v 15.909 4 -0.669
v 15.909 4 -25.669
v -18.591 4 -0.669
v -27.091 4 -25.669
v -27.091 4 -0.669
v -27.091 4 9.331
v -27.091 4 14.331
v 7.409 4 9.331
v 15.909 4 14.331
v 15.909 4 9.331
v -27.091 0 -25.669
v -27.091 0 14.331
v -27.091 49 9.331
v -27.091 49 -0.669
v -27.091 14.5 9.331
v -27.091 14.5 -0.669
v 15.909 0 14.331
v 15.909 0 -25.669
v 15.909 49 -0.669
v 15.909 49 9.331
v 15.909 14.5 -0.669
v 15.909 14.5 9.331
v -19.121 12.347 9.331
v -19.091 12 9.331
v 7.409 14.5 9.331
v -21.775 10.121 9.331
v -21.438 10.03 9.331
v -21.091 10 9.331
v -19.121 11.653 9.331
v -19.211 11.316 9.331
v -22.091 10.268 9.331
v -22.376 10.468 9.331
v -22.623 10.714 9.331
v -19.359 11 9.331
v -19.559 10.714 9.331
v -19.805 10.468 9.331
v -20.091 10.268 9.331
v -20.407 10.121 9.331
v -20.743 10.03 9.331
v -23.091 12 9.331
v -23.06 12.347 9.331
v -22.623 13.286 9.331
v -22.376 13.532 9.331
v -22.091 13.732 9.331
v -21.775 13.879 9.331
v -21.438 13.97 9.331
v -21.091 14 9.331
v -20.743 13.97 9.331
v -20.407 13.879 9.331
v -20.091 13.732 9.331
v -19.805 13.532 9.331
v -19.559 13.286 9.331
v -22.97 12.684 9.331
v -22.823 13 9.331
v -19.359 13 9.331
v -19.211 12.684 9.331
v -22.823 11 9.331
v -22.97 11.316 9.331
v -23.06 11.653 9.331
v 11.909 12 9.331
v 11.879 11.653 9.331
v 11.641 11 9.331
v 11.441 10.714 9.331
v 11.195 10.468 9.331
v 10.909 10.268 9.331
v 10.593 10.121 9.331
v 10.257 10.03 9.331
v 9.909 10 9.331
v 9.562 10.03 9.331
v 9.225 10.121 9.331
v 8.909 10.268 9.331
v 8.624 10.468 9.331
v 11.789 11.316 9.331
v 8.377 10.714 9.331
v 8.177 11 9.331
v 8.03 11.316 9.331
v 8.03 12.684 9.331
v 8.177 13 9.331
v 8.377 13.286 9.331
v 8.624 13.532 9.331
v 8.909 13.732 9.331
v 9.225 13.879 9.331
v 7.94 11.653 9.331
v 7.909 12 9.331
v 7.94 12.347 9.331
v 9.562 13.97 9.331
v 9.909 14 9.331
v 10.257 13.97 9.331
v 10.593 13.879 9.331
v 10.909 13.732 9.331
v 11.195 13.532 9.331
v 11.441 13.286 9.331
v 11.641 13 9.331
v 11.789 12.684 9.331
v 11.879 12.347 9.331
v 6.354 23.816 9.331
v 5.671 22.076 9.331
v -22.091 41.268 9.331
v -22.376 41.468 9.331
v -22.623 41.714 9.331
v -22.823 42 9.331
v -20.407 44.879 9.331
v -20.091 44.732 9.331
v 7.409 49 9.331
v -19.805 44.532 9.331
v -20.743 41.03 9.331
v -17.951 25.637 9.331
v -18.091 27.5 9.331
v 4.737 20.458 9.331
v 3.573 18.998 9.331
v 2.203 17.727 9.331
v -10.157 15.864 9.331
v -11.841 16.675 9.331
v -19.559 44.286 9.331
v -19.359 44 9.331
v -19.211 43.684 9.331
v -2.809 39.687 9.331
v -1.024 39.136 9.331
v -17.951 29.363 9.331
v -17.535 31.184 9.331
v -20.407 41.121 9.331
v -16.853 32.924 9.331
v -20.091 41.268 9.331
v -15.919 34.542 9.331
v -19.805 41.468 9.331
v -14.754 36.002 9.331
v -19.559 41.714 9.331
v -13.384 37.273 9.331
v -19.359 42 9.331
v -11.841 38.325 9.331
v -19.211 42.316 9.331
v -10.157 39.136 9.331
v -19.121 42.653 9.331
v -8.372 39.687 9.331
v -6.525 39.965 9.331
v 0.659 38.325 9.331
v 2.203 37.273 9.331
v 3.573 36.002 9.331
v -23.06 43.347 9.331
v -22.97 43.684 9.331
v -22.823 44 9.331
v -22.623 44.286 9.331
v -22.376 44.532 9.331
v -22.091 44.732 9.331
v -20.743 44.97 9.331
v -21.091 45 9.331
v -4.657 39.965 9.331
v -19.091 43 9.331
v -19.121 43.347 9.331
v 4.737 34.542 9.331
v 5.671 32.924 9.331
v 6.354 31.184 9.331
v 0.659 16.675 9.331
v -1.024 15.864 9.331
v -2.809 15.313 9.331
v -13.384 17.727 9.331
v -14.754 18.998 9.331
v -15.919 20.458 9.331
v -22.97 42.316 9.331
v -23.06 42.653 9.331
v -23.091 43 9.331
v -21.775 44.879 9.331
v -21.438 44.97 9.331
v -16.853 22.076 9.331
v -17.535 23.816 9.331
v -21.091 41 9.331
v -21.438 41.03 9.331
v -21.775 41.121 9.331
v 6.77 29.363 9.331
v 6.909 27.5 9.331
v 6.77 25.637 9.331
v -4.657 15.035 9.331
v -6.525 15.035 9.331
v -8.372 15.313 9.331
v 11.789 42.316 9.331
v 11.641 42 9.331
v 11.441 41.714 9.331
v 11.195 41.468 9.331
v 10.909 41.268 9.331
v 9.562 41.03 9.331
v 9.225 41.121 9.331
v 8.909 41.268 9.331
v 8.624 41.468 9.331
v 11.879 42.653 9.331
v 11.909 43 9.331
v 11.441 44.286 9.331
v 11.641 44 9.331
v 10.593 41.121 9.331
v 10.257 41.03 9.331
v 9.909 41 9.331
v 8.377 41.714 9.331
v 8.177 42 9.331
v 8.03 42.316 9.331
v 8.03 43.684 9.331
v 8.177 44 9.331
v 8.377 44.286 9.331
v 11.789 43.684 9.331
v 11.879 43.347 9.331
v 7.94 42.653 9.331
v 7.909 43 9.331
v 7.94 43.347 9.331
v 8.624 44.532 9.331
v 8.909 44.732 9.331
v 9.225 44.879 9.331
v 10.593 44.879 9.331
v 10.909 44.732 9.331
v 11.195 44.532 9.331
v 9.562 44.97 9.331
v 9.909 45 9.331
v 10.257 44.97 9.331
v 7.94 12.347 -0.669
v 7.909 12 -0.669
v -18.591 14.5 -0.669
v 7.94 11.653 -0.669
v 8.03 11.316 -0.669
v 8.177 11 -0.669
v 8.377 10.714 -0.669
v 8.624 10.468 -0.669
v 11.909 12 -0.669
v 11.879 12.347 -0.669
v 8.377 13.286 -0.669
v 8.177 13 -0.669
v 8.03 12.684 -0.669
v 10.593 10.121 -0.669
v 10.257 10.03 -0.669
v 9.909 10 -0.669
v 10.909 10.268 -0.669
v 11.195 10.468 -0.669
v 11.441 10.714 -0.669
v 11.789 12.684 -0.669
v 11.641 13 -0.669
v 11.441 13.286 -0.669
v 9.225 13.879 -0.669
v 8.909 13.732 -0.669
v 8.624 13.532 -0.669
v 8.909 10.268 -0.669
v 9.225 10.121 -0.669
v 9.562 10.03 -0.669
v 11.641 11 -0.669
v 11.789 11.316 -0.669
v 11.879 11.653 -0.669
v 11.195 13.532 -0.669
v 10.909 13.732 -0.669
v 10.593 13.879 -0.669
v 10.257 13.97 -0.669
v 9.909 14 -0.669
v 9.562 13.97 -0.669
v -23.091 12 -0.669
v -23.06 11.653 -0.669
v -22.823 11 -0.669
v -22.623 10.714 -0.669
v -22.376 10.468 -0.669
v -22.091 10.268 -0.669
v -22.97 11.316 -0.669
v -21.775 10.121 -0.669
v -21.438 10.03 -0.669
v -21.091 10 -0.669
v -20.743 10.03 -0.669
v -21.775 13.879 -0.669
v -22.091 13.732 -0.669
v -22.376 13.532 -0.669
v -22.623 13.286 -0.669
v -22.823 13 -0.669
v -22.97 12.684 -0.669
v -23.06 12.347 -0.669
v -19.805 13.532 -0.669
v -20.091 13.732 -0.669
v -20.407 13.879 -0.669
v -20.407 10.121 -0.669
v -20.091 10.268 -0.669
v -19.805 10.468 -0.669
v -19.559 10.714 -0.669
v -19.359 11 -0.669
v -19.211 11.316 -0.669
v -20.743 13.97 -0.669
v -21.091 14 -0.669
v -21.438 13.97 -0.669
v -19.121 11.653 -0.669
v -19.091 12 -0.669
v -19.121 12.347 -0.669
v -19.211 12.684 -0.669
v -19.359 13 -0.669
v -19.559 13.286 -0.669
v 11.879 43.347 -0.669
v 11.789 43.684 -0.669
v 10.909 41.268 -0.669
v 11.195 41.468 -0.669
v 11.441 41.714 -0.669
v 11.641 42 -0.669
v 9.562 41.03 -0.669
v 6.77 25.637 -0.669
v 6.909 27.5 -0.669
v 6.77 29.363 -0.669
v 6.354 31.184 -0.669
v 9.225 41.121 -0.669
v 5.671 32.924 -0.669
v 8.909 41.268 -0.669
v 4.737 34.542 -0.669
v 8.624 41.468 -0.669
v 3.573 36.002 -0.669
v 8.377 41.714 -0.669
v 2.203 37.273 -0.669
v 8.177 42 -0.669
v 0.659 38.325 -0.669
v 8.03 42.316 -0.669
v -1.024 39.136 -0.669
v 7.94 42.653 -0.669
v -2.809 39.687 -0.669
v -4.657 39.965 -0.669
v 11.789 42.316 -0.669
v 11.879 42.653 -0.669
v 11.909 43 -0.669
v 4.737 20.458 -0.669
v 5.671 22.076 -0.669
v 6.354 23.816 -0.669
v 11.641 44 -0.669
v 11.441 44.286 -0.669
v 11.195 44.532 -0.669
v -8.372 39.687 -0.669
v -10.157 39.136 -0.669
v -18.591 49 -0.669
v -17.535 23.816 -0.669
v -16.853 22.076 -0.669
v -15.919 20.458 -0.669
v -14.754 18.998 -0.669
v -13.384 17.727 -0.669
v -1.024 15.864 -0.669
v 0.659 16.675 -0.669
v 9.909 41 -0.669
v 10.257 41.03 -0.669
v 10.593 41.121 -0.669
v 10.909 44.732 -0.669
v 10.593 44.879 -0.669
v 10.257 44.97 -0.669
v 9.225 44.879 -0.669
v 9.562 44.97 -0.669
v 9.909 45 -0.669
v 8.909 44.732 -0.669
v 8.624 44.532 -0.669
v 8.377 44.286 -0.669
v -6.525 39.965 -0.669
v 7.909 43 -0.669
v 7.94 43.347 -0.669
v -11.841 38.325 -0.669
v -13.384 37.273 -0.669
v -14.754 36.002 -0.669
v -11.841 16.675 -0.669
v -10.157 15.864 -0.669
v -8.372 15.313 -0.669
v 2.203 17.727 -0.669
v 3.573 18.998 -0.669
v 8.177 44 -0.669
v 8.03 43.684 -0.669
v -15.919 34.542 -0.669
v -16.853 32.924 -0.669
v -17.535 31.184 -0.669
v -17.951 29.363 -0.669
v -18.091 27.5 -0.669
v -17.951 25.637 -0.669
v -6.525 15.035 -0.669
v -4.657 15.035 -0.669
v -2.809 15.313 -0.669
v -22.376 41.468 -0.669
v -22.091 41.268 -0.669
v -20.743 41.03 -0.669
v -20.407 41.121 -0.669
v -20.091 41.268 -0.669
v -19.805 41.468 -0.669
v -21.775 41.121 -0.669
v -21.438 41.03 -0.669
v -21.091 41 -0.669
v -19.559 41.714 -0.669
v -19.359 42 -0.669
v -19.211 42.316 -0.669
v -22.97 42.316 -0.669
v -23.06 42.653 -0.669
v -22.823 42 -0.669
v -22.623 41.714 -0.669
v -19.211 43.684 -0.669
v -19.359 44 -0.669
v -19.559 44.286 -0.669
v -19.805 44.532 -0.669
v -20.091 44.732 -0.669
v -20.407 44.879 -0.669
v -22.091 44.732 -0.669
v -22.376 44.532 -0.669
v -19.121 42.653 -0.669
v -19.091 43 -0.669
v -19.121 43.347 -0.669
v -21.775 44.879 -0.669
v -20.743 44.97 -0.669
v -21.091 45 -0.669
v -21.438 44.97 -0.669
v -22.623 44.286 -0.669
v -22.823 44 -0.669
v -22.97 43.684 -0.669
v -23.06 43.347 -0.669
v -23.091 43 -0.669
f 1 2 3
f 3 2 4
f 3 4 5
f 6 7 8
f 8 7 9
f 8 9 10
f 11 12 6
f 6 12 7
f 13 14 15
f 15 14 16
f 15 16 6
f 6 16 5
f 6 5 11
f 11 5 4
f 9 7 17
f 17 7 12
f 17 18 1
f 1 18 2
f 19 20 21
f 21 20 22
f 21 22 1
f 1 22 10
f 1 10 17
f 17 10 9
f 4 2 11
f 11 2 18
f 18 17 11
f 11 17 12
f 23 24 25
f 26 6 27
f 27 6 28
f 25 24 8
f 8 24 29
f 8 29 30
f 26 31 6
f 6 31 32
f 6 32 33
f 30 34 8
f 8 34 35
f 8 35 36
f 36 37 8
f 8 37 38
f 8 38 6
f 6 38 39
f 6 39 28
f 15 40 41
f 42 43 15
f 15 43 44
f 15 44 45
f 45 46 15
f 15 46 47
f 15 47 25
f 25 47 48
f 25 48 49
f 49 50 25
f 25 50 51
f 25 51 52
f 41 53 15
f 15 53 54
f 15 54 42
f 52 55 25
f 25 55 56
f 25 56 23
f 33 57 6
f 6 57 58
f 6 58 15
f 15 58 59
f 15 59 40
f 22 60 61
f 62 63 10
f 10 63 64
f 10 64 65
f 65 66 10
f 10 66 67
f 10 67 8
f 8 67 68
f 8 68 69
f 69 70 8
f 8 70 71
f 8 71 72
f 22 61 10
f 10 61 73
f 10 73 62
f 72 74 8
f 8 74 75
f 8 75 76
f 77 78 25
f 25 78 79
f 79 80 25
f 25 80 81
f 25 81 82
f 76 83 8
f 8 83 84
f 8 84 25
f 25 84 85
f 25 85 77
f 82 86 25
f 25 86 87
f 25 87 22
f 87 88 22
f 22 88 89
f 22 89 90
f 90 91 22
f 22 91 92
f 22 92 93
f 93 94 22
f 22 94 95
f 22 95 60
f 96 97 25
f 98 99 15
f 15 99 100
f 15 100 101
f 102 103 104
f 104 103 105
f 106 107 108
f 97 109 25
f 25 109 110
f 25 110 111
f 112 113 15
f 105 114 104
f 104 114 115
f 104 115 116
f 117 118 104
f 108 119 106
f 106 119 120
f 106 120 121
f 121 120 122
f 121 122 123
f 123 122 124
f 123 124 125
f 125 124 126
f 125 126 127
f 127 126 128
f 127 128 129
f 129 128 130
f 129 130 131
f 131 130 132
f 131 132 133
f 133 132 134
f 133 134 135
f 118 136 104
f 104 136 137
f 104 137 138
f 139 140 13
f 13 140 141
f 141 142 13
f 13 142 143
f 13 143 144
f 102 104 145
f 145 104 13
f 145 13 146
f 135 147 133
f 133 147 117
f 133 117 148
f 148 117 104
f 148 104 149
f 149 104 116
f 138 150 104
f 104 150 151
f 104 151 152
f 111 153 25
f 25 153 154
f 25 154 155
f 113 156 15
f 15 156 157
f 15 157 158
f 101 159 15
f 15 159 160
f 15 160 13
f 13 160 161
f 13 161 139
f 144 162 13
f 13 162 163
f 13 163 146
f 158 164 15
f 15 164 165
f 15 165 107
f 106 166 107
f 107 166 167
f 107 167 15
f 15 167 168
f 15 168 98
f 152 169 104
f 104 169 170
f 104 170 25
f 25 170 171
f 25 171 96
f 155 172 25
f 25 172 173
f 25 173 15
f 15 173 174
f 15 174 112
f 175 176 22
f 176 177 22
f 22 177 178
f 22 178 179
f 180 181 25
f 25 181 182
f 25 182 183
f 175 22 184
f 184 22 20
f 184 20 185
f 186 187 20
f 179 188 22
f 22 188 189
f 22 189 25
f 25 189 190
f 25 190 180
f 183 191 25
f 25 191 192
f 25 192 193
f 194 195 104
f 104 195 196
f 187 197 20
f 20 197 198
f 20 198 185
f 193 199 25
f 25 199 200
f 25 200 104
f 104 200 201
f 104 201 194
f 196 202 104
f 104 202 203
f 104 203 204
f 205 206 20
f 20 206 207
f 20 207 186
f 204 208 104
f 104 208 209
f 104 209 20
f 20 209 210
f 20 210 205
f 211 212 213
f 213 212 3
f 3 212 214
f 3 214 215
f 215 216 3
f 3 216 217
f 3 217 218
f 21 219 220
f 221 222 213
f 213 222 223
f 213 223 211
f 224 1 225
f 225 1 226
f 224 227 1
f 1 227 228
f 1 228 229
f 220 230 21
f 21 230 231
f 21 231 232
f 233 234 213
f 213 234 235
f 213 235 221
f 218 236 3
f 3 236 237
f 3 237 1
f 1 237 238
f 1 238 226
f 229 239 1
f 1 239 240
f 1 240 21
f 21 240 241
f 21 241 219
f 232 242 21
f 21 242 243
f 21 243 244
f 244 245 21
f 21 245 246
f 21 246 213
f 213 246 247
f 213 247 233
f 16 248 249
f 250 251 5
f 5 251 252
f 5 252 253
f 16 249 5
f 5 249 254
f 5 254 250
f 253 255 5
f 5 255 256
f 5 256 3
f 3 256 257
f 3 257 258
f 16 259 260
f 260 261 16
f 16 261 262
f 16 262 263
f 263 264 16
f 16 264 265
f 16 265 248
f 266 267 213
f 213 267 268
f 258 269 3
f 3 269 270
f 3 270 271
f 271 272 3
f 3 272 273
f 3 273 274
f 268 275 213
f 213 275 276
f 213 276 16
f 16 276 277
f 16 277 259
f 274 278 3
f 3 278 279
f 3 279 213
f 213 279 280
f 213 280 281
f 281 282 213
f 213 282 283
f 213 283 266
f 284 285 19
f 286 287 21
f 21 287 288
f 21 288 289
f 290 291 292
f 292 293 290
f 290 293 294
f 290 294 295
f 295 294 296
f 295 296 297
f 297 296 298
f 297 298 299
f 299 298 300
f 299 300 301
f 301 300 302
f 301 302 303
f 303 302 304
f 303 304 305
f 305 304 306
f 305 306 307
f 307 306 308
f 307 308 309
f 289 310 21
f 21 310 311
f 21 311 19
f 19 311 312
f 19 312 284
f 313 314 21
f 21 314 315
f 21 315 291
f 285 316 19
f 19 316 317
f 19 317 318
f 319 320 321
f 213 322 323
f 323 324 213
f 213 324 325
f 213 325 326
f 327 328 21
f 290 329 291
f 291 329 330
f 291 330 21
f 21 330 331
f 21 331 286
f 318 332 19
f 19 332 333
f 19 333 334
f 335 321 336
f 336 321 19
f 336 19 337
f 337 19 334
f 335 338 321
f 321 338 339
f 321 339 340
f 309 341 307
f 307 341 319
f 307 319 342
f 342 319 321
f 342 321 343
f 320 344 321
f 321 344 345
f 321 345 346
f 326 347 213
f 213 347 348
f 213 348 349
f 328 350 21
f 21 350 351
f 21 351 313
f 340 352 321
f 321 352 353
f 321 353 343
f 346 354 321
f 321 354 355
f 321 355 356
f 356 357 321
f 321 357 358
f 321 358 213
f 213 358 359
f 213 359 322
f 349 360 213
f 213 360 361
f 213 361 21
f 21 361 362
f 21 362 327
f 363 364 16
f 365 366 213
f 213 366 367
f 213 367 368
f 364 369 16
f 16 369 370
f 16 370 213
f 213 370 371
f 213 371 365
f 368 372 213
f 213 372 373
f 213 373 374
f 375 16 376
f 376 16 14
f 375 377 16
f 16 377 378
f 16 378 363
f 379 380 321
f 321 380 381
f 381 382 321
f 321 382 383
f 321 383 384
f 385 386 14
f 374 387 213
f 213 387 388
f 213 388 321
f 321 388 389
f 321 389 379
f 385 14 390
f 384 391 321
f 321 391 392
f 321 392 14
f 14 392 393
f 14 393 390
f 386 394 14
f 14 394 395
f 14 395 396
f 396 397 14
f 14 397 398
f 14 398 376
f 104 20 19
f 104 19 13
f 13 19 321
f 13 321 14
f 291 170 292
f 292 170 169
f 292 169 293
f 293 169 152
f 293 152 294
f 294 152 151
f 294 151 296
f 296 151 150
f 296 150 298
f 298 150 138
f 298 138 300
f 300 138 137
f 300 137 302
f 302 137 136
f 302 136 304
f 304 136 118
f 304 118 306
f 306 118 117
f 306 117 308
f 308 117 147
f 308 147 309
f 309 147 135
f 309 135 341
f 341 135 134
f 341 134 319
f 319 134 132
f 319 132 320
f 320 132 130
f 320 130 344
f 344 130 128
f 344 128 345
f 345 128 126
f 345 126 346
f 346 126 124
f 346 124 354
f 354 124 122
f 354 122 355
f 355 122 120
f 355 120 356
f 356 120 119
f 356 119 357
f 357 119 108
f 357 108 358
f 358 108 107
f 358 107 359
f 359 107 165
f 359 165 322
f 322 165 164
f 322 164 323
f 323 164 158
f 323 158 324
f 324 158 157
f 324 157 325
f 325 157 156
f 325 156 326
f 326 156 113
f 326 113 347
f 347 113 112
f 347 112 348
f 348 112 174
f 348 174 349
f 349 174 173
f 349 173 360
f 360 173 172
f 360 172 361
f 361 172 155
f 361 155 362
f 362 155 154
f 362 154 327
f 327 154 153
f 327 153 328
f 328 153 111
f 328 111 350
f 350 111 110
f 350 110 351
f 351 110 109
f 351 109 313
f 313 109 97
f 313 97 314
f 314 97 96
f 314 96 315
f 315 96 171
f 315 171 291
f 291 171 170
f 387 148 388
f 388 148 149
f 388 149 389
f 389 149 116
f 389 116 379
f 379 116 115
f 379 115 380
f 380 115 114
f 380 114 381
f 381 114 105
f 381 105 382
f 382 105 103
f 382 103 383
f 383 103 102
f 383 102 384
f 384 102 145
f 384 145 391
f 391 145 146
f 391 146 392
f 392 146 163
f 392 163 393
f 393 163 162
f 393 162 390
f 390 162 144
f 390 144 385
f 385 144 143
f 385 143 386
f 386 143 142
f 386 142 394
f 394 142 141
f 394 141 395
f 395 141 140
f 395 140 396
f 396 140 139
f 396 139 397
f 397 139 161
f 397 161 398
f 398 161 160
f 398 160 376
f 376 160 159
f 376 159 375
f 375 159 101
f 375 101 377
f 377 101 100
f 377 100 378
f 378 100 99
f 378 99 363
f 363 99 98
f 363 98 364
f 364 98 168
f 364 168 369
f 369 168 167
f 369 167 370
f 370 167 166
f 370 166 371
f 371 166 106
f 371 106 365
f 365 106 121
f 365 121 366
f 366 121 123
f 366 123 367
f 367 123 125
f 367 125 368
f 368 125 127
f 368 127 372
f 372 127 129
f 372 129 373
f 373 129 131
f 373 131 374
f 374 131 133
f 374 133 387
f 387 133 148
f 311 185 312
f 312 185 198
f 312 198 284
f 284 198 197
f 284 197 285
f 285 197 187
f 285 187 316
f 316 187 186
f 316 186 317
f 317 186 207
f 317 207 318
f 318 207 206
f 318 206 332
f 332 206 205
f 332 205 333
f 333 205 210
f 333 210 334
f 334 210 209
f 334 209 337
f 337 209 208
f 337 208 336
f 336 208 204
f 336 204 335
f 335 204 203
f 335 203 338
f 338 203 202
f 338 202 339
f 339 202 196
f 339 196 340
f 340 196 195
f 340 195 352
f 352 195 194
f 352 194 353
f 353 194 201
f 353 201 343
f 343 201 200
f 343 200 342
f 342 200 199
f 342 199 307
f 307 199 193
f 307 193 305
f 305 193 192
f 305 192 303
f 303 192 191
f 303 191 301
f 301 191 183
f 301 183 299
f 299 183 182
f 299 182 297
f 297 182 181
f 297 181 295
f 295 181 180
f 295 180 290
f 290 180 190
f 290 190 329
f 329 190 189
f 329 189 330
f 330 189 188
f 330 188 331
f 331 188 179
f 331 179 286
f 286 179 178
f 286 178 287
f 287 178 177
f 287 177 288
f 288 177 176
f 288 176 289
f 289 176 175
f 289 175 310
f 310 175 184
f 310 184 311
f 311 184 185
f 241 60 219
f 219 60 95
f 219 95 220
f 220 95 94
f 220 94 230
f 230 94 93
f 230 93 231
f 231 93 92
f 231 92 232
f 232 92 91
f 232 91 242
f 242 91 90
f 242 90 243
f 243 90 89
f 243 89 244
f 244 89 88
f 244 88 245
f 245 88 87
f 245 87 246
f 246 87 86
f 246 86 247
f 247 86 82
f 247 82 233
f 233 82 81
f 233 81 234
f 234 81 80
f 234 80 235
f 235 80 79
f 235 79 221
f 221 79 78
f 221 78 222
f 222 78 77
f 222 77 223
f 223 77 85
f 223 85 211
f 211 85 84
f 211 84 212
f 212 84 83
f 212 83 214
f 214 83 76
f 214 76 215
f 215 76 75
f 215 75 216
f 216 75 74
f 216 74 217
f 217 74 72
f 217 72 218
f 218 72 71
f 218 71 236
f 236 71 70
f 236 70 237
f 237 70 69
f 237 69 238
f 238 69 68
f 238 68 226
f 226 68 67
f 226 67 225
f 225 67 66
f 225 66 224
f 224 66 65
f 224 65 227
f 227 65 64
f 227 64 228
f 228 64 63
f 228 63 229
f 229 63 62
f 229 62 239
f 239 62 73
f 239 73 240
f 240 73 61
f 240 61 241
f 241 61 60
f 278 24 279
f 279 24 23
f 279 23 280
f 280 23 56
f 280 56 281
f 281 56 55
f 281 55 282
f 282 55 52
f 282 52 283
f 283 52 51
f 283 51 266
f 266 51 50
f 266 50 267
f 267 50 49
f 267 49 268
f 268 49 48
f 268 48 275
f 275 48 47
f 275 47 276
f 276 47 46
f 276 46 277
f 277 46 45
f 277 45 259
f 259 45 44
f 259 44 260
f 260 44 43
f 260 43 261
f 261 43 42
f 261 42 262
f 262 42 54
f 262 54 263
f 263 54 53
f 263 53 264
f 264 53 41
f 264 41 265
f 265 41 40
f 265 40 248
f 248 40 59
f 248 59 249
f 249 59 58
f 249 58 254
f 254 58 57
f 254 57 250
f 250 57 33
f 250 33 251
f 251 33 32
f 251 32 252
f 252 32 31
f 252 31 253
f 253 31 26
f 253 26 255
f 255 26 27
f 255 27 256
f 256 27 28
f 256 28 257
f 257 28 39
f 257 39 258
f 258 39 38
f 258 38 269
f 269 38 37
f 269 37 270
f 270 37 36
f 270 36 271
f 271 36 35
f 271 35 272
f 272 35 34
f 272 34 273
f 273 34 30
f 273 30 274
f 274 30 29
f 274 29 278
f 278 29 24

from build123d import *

# Parameters (mm, degrees)
SKETCH1_W           = 43
SKETCH1_H           = 40
BOSS_EXTRUDE1_DEPTH = 4
SKETCH2_W           = 43
SKETCH2_H           = 10
BOSS_EXTRUDE2_DEPTH = 45
CUT_EXTRUDE1_REACH  = 68.03
SKETCH3_R           = 12.5
SKETCH3_R_2         = 2


with BuildPart() as part:
    # Sketch1 → Boss-Extrude1 (new body)
    with BuildSketch(Plane(origin=(0, 0, 0), x_dir=(1, 0, 0), z_dir=(0, 1, 0))):
        with Locations((-5.590648476, 5.669439574)):
            Rectangle(SKETCH1_W, SKETCH1_H)
    extrude(amount=BOSS_EXTRUDE1_DEPTH)

    # Sketch2 → Boss-Extrude2 (add)
    with BuildSketch(Plane(origin=(0, 4, 0), x_dir=(1, 0, 0), z_dir=(0, 1, 0))):
        with Locations((-5.590648476, -4.330560426)):
            Rectangle(SKETCH2_W, SKETCH2_H)
    extrude(amount=BOSS_EXTRUDE2_DEPTH)

    # Sketch3 → Cut-Extrude1 (cut, up to next)
    with BuildSketch(Plane.XY.offset(9.330560426), mode=Mode.PRIVATE) as cut_extrude1_sk1:
        with Locations((-5.590648476, 27.5)):
            Circle(SKETCH3_R)
    cut_extrude1_tool1 = extrude(cut_extrude1_sk1.sketch, amount=-CUT_EXTRUDE1_REACH, mode=Mode.PRIVATE) & part.part
    # Sketch3 → Cut-Extrude1 (cut, up to next)
    with BuildSketch(Plane.XY.offset(9.330560426), mode=Mode.PRIVATE) as cut_extrude1_sk2:
        with Locations((-21.090648476, 43)):
            Circle(SKETCH3_R_2)
    cut_extrude1_tool2 = extrude(cut_extrude1_sk2.sketch, amount=-CUT_EXTRUDE1_REACH, mode=Mode.PRIVATE) & part.part
    # Sketch3 → Cut-Extrude1 (cut, up to next)
    with BuildSketch(Plane.XY.offset(9.330560426), mode=Mode.PRIVATE) as cut_extrude1_sk3:
        with Locations((9.909351524, 43)):
            Circle(SKETCH3_R_2)
    cut_extrude1_tool3 = extrude(cut_extrude1_sk3.sketch, amount=-CUT_EXTRUDE1_REACH, mode=Mode.PRIVATE) & part.part
    # Sketch3 → Cut-Extrude1 (cut, up to next)
    with BuildSketch(Plane.XY.offset(9.330560426), mode=Mode.PRIVATE) as cut_extrude1_sk4:
        with Locations((9.909351524, 12)):
            Circle(SKETCH3_R_2)
    cut_extrude1_tool4 = extrude(cut_extrude1_sk4.sketch, amount=-CUT_EXTRUDE1_REACH, mode=Mode.PRIVATE) & part.part
    # Sketch3 → Cut-Extrude1 (cut, up to next)
    with BuildSketch(Plane.XY.offset(9.330560426), mode=Mode.PRIVATE) as cut_extrude1_sk5:
        with Locations((-21.090648476, 12)):
            Circle(SKETCH3_R_2)
    cut_extrude1_tool5 = extrude(cut_extrude1_sk5.sketch, amount=-CUT_EXTRUDE1_REACH, mode=Mode.PRIVATE) & part.part
    add(cut_extrude1_tool1.solids().sort_by_distance((-5.590648, 27.5, 9.33056))[0], mode=Mode.SUBTRACT)
    add(cut_extrude1_tool2.solids().sort_by_distance((-21.090648, 43, 9.33056))[0], mode=Mode.SUBTRACT)
    add(cut_extrude1_tool3.solids().sort_by_distance((9.909352, 43, 9.33056))[0], mode=Mode.SUBTRACT)
    add(cut_extrude1_tool4.solids().sort_by_distance((9.909352, 12, 9.33056))[0], mode=Mode.SUBTRACT)
    add(cut_extrude1_tool5.solids().sort_by_distance((-21.090648, 12, 9.33056))[0], mode=Mode.SUBTRACT)


solid = part.part
